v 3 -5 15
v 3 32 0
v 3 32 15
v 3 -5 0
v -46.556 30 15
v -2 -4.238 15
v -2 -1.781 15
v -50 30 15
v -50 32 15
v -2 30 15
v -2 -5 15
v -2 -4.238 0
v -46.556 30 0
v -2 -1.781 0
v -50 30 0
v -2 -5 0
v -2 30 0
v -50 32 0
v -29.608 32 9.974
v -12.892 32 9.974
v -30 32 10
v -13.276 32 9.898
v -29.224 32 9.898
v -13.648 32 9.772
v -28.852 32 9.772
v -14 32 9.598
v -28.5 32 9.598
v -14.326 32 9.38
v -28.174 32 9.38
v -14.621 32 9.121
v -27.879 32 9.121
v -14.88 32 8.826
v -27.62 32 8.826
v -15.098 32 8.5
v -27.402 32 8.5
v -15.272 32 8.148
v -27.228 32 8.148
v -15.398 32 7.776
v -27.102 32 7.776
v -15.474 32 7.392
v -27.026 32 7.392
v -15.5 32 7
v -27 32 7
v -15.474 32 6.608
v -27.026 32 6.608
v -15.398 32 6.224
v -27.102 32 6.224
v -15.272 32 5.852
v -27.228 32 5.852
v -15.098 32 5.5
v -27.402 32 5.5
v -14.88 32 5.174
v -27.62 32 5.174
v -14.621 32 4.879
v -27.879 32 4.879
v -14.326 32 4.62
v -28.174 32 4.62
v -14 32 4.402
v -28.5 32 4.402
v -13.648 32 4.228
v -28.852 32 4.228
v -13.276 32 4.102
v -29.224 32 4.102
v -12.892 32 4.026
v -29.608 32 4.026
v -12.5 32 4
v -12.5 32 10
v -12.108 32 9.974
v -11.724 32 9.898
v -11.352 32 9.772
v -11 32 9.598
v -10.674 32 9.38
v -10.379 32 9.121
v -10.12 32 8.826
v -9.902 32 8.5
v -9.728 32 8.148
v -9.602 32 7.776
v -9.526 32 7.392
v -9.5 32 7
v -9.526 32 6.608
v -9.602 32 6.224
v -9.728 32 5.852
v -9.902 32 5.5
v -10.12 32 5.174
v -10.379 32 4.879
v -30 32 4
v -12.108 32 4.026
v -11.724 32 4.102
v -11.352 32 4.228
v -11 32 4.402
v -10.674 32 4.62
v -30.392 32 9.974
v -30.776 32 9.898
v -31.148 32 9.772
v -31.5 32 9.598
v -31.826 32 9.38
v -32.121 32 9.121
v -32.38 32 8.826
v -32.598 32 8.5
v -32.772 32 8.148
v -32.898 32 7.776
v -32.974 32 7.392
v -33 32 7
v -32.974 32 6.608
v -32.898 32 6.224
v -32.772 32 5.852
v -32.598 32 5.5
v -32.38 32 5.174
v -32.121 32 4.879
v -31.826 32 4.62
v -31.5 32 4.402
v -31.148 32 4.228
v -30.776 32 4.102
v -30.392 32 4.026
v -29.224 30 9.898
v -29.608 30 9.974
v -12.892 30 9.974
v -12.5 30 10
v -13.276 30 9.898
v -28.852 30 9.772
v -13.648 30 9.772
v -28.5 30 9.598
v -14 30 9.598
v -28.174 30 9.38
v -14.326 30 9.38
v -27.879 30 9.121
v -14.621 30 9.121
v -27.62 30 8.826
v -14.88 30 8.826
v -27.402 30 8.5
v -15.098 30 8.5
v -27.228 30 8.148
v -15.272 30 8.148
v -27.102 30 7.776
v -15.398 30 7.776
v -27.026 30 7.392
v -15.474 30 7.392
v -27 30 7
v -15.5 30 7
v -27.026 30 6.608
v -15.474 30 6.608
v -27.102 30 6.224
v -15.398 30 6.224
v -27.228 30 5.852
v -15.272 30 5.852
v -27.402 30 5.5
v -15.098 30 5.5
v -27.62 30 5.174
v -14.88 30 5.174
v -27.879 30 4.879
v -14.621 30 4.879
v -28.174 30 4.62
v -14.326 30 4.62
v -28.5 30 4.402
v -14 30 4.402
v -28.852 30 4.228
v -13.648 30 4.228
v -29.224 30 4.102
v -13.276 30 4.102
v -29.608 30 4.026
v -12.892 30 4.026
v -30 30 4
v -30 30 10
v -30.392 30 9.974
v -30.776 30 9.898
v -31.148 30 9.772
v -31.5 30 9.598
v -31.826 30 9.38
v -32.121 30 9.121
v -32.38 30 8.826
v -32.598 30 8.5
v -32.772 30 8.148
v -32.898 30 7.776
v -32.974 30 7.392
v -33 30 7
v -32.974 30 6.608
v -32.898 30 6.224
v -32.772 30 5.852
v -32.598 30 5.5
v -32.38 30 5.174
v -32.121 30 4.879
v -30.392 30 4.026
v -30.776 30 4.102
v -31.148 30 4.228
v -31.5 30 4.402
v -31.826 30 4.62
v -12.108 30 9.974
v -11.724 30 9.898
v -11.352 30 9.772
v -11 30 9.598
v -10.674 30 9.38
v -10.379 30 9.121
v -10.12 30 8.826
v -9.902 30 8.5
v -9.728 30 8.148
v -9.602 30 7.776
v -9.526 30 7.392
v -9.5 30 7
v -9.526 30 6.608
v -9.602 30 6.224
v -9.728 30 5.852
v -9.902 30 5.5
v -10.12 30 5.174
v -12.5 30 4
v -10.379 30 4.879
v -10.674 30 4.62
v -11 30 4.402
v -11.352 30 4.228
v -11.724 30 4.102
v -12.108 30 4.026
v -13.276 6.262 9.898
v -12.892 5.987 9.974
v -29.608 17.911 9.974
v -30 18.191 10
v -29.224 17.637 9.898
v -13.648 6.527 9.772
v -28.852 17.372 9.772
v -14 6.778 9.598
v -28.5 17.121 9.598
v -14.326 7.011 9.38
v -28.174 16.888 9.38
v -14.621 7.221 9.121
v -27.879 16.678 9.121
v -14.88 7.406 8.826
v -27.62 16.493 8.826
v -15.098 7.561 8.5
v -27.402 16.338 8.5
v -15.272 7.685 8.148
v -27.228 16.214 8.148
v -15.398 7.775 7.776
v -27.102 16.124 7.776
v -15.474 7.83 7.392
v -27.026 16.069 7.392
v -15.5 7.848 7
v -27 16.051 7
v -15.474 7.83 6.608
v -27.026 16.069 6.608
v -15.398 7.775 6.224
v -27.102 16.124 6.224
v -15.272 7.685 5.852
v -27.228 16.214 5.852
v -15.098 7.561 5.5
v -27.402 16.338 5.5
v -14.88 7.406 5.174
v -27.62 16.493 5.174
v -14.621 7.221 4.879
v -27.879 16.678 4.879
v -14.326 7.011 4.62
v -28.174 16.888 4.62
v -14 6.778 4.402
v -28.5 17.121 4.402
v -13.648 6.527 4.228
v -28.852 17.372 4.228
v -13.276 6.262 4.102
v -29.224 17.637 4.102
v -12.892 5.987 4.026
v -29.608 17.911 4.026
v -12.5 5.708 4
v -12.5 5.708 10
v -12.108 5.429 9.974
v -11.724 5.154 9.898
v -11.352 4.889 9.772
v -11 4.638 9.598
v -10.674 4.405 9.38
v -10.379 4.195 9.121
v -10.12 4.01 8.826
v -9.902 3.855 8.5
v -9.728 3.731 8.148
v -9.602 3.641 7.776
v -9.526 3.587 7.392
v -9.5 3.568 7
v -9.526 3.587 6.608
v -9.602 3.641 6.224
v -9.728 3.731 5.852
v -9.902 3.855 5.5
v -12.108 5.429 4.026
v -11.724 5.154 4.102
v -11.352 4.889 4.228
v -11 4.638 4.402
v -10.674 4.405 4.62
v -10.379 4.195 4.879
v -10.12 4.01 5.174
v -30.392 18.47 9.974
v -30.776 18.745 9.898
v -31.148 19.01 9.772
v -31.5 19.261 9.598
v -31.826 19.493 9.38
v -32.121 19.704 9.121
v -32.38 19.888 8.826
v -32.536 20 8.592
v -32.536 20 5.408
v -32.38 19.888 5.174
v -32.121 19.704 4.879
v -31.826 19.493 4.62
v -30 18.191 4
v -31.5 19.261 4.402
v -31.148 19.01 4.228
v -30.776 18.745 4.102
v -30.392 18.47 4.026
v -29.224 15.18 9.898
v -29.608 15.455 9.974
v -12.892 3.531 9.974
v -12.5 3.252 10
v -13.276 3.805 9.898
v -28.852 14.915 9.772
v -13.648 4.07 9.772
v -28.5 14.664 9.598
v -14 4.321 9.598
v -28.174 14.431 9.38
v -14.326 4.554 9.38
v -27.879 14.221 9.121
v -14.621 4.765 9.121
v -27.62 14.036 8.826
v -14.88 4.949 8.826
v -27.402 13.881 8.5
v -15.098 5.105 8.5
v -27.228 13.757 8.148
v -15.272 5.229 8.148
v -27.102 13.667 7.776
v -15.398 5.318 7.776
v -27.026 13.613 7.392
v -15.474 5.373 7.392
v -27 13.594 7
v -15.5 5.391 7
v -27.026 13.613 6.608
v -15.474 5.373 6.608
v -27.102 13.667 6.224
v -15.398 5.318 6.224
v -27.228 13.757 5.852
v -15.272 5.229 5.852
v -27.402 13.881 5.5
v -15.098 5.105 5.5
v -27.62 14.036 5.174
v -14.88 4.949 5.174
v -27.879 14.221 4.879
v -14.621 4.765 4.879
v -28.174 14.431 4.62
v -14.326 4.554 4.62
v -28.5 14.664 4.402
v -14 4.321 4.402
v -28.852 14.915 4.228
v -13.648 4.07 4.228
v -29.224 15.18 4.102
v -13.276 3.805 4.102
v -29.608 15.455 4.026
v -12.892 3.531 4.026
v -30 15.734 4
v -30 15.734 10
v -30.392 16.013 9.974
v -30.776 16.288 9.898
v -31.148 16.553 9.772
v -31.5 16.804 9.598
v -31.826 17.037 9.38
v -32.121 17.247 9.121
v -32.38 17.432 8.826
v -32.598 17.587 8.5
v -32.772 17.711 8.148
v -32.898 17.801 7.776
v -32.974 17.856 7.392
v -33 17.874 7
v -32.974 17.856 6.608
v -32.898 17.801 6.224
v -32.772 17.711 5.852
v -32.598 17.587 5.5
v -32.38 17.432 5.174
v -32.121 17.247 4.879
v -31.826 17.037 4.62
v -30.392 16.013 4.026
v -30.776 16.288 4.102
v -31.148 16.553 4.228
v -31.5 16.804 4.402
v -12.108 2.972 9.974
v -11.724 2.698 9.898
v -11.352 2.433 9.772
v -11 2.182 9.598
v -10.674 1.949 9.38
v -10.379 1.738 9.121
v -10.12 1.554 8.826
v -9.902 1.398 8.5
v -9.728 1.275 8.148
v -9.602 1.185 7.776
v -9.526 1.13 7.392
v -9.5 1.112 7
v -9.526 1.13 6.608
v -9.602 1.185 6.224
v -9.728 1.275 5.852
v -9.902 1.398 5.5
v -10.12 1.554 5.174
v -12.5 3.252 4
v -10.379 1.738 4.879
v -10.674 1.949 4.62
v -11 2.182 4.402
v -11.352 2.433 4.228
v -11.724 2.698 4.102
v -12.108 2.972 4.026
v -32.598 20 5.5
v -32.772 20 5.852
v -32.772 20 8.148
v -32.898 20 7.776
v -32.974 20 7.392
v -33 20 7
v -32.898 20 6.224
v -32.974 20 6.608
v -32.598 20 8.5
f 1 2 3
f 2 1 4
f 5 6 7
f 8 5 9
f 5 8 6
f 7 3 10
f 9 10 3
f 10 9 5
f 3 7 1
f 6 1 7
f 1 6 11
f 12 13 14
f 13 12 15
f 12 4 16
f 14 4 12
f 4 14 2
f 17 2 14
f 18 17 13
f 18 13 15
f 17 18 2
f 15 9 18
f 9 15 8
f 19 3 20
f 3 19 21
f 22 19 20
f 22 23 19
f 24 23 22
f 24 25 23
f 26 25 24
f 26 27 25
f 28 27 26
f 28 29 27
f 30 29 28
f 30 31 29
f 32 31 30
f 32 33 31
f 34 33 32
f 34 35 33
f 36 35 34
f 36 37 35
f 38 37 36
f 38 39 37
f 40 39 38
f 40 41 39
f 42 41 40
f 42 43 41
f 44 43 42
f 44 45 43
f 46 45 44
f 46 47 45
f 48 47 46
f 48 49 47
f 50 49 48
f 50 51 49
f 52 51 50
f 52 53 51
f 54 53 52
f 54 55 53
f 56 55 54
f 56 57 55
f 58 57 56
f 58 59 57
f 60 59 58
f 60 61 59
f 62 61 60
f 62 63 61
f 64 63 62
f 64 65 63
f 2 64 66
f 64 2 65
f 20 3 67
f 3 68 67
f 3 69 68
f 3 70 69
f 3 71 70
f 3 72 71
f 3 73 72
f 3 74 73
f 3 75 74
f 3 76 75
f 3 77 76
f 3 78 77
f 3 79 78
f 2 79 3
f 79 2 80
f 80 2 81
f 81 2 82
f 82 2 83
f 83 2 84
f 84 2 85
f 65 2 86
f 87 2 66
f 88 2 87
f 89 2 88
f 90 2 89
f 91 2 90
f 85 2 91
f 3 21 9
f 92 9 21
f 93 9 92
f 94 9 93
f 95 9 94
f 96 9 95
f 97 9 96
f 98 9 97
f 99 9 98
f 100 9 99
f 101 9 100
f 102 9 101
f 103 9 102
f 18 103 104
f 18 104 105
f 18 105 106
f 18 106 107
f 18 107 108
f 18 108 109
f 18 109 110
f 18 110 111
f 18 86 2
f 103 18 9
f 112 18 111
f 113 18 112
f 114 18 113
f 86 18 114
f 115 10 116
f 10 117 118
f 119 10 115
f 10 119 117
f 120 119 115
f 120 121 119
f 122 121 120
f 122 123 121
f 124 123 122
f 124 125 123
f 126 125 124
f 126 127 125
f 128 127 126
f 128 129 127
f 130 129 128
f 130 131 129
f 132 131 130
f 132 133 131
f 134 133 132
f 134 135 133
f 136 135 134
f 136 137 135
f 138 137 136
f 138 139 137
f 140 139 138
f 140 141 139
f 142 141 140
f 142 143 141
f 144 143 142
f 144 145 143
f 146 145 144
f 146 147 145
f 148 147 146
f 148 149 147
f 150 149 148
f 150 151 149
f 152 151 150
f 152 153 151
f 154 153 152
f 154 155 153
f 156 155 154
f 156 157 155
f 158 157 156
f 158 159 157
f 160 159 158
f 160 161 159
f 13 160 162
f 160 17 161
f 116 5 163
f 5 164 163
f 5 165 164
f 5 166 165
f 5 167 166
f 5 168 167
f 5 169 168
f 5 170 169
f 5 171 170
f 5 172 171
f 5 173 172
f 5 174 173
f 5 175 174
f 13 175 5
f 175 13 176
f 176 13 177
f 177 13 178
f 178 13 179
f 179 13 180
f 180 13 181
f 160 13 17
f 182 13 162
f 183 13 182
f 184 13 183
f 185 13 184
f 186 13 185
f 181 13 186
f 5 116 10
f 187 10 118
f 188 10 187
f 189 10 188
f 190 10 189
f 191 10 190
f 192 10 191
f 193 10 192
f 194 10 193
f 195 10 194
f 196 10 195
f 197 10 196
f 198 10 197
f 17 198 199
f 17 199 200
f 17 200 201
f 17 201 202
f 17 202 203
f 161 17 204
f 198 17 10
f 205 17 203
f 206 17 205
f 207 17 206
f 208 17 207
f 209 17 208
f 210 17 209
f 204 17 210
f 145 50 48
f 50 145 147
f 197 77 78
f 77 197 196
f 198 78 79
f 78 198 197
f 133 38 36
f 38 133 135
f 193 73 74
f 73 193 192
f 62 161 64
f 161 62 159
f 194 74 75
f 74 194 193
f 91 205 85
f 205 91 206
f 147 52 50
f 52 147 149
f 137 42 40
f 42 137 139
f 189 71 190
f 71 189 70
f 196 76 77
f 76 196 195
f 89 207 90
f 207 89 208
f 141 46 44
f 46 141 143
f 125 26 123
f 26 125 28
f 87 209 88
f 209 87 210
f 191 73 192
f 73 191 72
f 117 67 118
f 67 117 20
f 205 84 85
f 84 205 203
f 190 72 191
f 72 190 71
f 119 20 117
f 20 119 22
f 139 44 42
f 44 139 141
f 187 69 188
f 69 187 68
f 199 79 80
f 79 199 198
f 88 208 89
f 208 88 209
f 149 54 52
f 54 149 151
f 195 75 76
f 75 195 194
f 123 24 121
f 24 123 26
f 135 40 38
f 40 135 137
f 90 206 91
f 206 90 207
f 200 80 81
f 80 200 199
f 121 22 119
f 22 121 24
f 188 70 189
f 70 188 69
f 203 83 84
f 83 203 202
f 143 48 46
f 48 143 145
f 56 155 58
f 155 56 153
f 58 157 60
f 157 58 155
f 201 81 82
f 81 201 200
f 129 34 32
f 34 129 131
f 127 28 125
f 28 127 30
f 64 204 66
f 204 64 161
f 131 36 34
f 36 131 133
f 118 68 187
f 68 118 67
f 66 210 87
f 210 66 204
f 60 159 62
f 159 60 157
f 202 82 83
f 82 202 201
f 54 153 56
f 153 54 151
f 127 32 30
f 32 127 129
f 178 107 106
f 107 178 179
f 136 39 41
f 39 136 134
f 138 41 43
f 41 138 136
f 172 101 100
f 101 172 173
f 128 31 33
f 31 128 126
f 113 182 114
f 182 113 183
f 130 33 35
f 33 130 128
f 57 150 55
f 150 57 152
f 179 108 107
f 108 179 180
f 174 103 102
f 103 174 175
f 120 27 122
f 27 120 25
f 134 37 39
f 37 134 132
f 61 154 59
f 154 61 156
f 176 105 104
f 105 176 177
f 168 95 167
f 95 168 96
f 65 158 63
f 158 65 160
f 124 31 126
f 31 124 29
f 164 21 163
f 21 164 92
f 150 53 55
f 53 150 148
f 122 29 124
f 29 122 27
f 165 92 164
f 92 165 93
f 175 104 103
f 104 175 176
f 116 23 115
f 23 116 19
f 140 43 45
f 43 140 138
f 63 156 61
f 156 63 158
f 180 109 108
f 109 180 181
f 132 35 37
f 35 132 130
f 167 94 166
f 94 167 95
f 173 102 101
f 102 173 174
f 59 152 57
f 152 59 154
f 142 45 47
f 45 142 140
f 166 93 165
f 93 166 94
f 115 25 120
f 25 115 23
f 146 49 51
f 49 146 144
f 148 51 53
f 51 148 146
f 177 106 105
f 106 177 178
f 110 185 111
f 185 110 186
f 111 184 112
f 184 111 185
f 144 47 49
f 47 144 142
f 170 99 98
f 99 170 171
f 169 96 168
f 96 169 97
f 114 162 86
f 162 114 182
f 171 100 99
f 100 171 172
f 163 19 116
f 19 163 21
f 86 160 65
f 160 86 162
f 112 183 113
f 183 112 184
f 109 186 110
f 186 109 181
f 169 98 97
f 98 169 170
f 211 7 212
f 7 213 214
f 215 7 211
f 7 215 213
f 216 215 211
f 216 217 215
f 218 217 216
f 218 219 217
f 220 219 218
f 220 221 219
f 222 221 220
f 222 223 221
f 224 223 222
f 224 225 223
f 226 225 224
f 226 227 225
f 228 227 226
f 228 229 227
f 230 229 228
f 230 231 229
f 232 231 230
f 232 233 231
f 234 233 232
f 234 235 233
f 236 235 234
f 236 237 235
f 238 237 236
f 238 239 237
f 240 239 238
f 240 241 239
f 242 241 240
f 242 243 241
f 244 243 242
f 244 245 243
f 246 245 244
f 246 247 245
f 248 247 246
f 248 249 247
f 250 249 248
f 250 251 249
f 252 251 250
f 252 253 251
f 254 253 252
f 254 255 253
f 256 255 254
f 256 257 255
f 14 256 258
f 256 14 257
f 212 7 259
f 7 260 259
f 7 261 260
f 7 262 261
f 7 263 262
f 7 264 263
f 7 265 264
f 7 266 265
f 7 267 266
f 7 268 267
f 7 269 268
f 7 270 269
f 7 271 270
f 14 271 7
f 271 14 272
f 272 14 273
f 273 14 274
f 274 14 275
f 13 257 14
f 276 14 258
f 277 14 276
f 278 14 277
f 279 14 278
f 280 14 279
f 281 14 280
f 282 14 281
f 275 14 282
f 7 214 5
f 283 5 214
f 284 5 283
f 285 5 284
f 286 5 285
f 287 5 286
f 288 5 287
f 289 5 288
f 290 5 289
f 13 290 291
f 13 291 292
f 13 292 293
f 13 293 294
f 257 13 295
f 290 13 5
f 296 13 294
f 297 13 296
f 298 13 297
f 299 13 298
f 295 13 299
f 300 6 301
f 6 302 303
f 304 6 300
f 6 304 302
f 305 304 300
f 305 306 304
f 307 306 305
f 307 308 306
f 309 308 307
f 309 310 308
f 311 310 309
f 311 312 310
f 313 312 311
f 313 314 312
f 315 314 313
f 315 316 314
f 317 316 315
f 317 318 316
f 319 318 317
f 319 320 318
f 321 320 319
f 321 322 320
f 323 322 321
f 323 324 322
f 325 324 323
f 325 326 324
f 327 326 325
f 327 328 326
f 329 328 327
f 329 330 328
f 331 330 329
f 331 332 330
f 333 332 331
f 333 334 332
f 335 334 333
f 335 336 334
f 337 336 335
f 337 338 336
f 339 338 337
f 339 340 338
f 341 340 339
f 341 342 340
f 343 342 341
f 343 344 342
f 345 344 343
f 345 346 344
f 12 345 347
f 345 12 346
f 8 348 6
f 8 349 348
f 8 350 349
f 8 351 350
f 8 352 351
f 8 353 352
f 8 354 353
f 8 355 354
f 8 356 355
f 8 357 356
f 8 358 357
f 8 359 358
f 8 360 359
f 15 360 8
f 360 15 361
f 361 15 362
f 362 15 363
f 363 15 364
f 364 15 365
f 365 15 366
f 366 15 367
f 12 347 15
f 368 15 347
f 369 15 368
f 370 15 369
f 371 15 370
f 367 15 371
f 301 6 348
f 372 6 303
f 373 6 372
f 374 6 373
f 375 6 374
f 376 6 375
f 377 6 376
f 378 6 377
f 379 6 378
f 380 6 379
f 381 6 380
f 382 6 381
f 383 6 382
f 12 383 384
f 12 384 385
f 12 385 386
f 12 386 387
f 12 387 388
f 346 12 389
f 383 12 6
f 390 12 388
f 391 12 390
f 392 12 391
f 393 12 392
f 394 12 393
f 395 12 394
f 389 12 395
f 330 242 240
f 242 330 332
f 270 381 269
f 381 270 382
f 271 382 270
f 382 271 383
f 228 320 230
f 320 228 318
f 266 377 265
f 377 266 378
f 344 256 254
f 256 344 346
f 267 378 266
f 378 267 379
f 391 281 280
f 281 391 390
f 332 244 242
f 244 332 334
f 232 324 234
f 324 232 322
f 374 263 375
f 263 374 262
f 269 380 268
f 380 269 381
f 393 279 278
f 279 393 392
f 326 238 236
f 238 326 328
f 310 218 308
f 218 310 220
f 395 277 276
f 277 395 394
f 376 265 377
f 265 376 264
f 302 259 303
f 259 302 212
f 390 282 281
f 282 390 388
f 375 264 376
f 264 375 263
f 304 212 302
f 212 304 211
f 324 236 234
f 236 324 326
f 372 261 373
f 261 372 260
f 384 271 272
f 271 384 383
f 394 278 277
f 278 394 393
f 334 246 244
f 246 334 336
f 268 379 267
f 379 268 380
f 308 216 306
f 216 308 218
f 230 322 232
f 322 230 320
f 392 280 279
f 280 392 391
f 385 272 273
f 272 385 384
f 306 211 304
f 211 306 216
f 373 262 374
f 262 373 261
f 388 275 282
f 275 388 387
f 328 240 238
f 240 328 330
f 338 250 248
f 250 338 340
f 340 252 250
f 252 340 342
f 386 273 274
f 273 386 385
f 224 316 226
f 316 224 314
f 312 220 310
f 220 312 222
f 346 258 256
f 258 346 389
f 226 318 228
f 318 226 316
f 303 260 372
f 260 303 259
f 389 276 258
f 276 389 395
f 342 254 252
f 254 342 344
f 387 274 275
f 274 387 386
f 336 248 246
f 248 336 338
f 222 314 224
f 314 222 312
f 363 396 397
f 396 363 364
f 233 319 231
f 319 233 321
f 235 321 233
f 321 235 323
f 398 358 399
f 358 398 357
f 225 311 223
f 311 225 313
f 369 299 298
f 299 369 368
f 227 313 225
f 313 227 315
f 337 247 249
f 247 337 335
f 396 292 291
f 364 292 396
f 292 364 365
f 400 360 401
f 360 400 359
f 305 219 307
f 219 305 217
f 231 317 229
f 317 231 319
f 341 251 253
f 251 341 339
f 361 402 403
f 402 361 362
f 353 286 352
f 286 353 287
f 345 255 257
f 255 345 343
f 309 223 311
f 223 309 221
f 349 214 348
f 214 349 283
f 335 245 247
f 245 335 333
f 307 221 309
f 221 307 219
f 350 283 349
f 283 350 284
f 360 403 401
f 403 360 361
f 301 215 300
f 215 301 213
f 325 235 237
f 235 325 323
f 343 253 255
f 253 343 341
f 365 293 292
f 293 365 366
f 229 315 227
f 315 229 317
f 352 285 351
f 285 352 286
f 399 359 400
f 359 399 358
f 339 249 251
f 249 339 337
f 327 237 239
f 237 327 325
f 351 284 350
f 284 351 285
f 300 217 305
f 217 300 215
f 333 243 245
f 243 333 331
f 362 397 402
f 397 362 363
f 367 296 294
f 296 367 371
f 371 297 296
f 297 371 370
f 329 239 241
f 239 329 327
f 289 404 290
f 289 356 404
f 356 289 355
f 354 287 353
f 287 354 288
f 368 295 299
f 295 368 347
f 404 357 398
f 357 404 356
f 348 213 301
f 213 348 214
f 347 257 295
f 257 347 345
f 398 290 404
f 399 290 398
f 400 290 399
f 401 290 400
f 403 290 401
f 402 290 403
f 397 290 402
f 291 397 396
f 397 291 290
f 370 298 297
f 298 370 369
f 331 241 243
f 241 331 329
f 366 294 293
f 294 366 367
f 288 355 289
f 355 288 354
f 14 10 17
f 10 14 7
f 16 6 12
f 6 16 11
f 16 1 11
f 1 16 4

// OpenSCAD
$fa = 1;
$fs = 0.4;

B_HEIGHT=15;



// Side brackets
translate([-2,-5,0]){
cube([5,35,B_HEIGHT]);
}


difference(){
    translate([-50,30,0]){
        cube([53,2,B_HEIGHT]);
    }

    translate([-12.5,35,7]){
        rotate([90,0,0]){
            cylinder(h=6,r=3);
        } 
    }
    
    translate([-30,35,7]){
        rotate([90,0,0]){
            cylinder(h=6,r=3);
        } 
    }
}

difference(){
translate([-50,30,0]){

    rotate([0,0,-35.5]){
    cube([60,2,B_HEIGHT]);
    }
}

    translate([-12.5,8,7]){
        rotate([90,0,0]){
            cylinder(h=10,r=3);
        } 
    }
    
    translate([-30,20,7]){
    rotate([90,0,0]){
        cylinder(h=10,r=3);
    } 
}

}
